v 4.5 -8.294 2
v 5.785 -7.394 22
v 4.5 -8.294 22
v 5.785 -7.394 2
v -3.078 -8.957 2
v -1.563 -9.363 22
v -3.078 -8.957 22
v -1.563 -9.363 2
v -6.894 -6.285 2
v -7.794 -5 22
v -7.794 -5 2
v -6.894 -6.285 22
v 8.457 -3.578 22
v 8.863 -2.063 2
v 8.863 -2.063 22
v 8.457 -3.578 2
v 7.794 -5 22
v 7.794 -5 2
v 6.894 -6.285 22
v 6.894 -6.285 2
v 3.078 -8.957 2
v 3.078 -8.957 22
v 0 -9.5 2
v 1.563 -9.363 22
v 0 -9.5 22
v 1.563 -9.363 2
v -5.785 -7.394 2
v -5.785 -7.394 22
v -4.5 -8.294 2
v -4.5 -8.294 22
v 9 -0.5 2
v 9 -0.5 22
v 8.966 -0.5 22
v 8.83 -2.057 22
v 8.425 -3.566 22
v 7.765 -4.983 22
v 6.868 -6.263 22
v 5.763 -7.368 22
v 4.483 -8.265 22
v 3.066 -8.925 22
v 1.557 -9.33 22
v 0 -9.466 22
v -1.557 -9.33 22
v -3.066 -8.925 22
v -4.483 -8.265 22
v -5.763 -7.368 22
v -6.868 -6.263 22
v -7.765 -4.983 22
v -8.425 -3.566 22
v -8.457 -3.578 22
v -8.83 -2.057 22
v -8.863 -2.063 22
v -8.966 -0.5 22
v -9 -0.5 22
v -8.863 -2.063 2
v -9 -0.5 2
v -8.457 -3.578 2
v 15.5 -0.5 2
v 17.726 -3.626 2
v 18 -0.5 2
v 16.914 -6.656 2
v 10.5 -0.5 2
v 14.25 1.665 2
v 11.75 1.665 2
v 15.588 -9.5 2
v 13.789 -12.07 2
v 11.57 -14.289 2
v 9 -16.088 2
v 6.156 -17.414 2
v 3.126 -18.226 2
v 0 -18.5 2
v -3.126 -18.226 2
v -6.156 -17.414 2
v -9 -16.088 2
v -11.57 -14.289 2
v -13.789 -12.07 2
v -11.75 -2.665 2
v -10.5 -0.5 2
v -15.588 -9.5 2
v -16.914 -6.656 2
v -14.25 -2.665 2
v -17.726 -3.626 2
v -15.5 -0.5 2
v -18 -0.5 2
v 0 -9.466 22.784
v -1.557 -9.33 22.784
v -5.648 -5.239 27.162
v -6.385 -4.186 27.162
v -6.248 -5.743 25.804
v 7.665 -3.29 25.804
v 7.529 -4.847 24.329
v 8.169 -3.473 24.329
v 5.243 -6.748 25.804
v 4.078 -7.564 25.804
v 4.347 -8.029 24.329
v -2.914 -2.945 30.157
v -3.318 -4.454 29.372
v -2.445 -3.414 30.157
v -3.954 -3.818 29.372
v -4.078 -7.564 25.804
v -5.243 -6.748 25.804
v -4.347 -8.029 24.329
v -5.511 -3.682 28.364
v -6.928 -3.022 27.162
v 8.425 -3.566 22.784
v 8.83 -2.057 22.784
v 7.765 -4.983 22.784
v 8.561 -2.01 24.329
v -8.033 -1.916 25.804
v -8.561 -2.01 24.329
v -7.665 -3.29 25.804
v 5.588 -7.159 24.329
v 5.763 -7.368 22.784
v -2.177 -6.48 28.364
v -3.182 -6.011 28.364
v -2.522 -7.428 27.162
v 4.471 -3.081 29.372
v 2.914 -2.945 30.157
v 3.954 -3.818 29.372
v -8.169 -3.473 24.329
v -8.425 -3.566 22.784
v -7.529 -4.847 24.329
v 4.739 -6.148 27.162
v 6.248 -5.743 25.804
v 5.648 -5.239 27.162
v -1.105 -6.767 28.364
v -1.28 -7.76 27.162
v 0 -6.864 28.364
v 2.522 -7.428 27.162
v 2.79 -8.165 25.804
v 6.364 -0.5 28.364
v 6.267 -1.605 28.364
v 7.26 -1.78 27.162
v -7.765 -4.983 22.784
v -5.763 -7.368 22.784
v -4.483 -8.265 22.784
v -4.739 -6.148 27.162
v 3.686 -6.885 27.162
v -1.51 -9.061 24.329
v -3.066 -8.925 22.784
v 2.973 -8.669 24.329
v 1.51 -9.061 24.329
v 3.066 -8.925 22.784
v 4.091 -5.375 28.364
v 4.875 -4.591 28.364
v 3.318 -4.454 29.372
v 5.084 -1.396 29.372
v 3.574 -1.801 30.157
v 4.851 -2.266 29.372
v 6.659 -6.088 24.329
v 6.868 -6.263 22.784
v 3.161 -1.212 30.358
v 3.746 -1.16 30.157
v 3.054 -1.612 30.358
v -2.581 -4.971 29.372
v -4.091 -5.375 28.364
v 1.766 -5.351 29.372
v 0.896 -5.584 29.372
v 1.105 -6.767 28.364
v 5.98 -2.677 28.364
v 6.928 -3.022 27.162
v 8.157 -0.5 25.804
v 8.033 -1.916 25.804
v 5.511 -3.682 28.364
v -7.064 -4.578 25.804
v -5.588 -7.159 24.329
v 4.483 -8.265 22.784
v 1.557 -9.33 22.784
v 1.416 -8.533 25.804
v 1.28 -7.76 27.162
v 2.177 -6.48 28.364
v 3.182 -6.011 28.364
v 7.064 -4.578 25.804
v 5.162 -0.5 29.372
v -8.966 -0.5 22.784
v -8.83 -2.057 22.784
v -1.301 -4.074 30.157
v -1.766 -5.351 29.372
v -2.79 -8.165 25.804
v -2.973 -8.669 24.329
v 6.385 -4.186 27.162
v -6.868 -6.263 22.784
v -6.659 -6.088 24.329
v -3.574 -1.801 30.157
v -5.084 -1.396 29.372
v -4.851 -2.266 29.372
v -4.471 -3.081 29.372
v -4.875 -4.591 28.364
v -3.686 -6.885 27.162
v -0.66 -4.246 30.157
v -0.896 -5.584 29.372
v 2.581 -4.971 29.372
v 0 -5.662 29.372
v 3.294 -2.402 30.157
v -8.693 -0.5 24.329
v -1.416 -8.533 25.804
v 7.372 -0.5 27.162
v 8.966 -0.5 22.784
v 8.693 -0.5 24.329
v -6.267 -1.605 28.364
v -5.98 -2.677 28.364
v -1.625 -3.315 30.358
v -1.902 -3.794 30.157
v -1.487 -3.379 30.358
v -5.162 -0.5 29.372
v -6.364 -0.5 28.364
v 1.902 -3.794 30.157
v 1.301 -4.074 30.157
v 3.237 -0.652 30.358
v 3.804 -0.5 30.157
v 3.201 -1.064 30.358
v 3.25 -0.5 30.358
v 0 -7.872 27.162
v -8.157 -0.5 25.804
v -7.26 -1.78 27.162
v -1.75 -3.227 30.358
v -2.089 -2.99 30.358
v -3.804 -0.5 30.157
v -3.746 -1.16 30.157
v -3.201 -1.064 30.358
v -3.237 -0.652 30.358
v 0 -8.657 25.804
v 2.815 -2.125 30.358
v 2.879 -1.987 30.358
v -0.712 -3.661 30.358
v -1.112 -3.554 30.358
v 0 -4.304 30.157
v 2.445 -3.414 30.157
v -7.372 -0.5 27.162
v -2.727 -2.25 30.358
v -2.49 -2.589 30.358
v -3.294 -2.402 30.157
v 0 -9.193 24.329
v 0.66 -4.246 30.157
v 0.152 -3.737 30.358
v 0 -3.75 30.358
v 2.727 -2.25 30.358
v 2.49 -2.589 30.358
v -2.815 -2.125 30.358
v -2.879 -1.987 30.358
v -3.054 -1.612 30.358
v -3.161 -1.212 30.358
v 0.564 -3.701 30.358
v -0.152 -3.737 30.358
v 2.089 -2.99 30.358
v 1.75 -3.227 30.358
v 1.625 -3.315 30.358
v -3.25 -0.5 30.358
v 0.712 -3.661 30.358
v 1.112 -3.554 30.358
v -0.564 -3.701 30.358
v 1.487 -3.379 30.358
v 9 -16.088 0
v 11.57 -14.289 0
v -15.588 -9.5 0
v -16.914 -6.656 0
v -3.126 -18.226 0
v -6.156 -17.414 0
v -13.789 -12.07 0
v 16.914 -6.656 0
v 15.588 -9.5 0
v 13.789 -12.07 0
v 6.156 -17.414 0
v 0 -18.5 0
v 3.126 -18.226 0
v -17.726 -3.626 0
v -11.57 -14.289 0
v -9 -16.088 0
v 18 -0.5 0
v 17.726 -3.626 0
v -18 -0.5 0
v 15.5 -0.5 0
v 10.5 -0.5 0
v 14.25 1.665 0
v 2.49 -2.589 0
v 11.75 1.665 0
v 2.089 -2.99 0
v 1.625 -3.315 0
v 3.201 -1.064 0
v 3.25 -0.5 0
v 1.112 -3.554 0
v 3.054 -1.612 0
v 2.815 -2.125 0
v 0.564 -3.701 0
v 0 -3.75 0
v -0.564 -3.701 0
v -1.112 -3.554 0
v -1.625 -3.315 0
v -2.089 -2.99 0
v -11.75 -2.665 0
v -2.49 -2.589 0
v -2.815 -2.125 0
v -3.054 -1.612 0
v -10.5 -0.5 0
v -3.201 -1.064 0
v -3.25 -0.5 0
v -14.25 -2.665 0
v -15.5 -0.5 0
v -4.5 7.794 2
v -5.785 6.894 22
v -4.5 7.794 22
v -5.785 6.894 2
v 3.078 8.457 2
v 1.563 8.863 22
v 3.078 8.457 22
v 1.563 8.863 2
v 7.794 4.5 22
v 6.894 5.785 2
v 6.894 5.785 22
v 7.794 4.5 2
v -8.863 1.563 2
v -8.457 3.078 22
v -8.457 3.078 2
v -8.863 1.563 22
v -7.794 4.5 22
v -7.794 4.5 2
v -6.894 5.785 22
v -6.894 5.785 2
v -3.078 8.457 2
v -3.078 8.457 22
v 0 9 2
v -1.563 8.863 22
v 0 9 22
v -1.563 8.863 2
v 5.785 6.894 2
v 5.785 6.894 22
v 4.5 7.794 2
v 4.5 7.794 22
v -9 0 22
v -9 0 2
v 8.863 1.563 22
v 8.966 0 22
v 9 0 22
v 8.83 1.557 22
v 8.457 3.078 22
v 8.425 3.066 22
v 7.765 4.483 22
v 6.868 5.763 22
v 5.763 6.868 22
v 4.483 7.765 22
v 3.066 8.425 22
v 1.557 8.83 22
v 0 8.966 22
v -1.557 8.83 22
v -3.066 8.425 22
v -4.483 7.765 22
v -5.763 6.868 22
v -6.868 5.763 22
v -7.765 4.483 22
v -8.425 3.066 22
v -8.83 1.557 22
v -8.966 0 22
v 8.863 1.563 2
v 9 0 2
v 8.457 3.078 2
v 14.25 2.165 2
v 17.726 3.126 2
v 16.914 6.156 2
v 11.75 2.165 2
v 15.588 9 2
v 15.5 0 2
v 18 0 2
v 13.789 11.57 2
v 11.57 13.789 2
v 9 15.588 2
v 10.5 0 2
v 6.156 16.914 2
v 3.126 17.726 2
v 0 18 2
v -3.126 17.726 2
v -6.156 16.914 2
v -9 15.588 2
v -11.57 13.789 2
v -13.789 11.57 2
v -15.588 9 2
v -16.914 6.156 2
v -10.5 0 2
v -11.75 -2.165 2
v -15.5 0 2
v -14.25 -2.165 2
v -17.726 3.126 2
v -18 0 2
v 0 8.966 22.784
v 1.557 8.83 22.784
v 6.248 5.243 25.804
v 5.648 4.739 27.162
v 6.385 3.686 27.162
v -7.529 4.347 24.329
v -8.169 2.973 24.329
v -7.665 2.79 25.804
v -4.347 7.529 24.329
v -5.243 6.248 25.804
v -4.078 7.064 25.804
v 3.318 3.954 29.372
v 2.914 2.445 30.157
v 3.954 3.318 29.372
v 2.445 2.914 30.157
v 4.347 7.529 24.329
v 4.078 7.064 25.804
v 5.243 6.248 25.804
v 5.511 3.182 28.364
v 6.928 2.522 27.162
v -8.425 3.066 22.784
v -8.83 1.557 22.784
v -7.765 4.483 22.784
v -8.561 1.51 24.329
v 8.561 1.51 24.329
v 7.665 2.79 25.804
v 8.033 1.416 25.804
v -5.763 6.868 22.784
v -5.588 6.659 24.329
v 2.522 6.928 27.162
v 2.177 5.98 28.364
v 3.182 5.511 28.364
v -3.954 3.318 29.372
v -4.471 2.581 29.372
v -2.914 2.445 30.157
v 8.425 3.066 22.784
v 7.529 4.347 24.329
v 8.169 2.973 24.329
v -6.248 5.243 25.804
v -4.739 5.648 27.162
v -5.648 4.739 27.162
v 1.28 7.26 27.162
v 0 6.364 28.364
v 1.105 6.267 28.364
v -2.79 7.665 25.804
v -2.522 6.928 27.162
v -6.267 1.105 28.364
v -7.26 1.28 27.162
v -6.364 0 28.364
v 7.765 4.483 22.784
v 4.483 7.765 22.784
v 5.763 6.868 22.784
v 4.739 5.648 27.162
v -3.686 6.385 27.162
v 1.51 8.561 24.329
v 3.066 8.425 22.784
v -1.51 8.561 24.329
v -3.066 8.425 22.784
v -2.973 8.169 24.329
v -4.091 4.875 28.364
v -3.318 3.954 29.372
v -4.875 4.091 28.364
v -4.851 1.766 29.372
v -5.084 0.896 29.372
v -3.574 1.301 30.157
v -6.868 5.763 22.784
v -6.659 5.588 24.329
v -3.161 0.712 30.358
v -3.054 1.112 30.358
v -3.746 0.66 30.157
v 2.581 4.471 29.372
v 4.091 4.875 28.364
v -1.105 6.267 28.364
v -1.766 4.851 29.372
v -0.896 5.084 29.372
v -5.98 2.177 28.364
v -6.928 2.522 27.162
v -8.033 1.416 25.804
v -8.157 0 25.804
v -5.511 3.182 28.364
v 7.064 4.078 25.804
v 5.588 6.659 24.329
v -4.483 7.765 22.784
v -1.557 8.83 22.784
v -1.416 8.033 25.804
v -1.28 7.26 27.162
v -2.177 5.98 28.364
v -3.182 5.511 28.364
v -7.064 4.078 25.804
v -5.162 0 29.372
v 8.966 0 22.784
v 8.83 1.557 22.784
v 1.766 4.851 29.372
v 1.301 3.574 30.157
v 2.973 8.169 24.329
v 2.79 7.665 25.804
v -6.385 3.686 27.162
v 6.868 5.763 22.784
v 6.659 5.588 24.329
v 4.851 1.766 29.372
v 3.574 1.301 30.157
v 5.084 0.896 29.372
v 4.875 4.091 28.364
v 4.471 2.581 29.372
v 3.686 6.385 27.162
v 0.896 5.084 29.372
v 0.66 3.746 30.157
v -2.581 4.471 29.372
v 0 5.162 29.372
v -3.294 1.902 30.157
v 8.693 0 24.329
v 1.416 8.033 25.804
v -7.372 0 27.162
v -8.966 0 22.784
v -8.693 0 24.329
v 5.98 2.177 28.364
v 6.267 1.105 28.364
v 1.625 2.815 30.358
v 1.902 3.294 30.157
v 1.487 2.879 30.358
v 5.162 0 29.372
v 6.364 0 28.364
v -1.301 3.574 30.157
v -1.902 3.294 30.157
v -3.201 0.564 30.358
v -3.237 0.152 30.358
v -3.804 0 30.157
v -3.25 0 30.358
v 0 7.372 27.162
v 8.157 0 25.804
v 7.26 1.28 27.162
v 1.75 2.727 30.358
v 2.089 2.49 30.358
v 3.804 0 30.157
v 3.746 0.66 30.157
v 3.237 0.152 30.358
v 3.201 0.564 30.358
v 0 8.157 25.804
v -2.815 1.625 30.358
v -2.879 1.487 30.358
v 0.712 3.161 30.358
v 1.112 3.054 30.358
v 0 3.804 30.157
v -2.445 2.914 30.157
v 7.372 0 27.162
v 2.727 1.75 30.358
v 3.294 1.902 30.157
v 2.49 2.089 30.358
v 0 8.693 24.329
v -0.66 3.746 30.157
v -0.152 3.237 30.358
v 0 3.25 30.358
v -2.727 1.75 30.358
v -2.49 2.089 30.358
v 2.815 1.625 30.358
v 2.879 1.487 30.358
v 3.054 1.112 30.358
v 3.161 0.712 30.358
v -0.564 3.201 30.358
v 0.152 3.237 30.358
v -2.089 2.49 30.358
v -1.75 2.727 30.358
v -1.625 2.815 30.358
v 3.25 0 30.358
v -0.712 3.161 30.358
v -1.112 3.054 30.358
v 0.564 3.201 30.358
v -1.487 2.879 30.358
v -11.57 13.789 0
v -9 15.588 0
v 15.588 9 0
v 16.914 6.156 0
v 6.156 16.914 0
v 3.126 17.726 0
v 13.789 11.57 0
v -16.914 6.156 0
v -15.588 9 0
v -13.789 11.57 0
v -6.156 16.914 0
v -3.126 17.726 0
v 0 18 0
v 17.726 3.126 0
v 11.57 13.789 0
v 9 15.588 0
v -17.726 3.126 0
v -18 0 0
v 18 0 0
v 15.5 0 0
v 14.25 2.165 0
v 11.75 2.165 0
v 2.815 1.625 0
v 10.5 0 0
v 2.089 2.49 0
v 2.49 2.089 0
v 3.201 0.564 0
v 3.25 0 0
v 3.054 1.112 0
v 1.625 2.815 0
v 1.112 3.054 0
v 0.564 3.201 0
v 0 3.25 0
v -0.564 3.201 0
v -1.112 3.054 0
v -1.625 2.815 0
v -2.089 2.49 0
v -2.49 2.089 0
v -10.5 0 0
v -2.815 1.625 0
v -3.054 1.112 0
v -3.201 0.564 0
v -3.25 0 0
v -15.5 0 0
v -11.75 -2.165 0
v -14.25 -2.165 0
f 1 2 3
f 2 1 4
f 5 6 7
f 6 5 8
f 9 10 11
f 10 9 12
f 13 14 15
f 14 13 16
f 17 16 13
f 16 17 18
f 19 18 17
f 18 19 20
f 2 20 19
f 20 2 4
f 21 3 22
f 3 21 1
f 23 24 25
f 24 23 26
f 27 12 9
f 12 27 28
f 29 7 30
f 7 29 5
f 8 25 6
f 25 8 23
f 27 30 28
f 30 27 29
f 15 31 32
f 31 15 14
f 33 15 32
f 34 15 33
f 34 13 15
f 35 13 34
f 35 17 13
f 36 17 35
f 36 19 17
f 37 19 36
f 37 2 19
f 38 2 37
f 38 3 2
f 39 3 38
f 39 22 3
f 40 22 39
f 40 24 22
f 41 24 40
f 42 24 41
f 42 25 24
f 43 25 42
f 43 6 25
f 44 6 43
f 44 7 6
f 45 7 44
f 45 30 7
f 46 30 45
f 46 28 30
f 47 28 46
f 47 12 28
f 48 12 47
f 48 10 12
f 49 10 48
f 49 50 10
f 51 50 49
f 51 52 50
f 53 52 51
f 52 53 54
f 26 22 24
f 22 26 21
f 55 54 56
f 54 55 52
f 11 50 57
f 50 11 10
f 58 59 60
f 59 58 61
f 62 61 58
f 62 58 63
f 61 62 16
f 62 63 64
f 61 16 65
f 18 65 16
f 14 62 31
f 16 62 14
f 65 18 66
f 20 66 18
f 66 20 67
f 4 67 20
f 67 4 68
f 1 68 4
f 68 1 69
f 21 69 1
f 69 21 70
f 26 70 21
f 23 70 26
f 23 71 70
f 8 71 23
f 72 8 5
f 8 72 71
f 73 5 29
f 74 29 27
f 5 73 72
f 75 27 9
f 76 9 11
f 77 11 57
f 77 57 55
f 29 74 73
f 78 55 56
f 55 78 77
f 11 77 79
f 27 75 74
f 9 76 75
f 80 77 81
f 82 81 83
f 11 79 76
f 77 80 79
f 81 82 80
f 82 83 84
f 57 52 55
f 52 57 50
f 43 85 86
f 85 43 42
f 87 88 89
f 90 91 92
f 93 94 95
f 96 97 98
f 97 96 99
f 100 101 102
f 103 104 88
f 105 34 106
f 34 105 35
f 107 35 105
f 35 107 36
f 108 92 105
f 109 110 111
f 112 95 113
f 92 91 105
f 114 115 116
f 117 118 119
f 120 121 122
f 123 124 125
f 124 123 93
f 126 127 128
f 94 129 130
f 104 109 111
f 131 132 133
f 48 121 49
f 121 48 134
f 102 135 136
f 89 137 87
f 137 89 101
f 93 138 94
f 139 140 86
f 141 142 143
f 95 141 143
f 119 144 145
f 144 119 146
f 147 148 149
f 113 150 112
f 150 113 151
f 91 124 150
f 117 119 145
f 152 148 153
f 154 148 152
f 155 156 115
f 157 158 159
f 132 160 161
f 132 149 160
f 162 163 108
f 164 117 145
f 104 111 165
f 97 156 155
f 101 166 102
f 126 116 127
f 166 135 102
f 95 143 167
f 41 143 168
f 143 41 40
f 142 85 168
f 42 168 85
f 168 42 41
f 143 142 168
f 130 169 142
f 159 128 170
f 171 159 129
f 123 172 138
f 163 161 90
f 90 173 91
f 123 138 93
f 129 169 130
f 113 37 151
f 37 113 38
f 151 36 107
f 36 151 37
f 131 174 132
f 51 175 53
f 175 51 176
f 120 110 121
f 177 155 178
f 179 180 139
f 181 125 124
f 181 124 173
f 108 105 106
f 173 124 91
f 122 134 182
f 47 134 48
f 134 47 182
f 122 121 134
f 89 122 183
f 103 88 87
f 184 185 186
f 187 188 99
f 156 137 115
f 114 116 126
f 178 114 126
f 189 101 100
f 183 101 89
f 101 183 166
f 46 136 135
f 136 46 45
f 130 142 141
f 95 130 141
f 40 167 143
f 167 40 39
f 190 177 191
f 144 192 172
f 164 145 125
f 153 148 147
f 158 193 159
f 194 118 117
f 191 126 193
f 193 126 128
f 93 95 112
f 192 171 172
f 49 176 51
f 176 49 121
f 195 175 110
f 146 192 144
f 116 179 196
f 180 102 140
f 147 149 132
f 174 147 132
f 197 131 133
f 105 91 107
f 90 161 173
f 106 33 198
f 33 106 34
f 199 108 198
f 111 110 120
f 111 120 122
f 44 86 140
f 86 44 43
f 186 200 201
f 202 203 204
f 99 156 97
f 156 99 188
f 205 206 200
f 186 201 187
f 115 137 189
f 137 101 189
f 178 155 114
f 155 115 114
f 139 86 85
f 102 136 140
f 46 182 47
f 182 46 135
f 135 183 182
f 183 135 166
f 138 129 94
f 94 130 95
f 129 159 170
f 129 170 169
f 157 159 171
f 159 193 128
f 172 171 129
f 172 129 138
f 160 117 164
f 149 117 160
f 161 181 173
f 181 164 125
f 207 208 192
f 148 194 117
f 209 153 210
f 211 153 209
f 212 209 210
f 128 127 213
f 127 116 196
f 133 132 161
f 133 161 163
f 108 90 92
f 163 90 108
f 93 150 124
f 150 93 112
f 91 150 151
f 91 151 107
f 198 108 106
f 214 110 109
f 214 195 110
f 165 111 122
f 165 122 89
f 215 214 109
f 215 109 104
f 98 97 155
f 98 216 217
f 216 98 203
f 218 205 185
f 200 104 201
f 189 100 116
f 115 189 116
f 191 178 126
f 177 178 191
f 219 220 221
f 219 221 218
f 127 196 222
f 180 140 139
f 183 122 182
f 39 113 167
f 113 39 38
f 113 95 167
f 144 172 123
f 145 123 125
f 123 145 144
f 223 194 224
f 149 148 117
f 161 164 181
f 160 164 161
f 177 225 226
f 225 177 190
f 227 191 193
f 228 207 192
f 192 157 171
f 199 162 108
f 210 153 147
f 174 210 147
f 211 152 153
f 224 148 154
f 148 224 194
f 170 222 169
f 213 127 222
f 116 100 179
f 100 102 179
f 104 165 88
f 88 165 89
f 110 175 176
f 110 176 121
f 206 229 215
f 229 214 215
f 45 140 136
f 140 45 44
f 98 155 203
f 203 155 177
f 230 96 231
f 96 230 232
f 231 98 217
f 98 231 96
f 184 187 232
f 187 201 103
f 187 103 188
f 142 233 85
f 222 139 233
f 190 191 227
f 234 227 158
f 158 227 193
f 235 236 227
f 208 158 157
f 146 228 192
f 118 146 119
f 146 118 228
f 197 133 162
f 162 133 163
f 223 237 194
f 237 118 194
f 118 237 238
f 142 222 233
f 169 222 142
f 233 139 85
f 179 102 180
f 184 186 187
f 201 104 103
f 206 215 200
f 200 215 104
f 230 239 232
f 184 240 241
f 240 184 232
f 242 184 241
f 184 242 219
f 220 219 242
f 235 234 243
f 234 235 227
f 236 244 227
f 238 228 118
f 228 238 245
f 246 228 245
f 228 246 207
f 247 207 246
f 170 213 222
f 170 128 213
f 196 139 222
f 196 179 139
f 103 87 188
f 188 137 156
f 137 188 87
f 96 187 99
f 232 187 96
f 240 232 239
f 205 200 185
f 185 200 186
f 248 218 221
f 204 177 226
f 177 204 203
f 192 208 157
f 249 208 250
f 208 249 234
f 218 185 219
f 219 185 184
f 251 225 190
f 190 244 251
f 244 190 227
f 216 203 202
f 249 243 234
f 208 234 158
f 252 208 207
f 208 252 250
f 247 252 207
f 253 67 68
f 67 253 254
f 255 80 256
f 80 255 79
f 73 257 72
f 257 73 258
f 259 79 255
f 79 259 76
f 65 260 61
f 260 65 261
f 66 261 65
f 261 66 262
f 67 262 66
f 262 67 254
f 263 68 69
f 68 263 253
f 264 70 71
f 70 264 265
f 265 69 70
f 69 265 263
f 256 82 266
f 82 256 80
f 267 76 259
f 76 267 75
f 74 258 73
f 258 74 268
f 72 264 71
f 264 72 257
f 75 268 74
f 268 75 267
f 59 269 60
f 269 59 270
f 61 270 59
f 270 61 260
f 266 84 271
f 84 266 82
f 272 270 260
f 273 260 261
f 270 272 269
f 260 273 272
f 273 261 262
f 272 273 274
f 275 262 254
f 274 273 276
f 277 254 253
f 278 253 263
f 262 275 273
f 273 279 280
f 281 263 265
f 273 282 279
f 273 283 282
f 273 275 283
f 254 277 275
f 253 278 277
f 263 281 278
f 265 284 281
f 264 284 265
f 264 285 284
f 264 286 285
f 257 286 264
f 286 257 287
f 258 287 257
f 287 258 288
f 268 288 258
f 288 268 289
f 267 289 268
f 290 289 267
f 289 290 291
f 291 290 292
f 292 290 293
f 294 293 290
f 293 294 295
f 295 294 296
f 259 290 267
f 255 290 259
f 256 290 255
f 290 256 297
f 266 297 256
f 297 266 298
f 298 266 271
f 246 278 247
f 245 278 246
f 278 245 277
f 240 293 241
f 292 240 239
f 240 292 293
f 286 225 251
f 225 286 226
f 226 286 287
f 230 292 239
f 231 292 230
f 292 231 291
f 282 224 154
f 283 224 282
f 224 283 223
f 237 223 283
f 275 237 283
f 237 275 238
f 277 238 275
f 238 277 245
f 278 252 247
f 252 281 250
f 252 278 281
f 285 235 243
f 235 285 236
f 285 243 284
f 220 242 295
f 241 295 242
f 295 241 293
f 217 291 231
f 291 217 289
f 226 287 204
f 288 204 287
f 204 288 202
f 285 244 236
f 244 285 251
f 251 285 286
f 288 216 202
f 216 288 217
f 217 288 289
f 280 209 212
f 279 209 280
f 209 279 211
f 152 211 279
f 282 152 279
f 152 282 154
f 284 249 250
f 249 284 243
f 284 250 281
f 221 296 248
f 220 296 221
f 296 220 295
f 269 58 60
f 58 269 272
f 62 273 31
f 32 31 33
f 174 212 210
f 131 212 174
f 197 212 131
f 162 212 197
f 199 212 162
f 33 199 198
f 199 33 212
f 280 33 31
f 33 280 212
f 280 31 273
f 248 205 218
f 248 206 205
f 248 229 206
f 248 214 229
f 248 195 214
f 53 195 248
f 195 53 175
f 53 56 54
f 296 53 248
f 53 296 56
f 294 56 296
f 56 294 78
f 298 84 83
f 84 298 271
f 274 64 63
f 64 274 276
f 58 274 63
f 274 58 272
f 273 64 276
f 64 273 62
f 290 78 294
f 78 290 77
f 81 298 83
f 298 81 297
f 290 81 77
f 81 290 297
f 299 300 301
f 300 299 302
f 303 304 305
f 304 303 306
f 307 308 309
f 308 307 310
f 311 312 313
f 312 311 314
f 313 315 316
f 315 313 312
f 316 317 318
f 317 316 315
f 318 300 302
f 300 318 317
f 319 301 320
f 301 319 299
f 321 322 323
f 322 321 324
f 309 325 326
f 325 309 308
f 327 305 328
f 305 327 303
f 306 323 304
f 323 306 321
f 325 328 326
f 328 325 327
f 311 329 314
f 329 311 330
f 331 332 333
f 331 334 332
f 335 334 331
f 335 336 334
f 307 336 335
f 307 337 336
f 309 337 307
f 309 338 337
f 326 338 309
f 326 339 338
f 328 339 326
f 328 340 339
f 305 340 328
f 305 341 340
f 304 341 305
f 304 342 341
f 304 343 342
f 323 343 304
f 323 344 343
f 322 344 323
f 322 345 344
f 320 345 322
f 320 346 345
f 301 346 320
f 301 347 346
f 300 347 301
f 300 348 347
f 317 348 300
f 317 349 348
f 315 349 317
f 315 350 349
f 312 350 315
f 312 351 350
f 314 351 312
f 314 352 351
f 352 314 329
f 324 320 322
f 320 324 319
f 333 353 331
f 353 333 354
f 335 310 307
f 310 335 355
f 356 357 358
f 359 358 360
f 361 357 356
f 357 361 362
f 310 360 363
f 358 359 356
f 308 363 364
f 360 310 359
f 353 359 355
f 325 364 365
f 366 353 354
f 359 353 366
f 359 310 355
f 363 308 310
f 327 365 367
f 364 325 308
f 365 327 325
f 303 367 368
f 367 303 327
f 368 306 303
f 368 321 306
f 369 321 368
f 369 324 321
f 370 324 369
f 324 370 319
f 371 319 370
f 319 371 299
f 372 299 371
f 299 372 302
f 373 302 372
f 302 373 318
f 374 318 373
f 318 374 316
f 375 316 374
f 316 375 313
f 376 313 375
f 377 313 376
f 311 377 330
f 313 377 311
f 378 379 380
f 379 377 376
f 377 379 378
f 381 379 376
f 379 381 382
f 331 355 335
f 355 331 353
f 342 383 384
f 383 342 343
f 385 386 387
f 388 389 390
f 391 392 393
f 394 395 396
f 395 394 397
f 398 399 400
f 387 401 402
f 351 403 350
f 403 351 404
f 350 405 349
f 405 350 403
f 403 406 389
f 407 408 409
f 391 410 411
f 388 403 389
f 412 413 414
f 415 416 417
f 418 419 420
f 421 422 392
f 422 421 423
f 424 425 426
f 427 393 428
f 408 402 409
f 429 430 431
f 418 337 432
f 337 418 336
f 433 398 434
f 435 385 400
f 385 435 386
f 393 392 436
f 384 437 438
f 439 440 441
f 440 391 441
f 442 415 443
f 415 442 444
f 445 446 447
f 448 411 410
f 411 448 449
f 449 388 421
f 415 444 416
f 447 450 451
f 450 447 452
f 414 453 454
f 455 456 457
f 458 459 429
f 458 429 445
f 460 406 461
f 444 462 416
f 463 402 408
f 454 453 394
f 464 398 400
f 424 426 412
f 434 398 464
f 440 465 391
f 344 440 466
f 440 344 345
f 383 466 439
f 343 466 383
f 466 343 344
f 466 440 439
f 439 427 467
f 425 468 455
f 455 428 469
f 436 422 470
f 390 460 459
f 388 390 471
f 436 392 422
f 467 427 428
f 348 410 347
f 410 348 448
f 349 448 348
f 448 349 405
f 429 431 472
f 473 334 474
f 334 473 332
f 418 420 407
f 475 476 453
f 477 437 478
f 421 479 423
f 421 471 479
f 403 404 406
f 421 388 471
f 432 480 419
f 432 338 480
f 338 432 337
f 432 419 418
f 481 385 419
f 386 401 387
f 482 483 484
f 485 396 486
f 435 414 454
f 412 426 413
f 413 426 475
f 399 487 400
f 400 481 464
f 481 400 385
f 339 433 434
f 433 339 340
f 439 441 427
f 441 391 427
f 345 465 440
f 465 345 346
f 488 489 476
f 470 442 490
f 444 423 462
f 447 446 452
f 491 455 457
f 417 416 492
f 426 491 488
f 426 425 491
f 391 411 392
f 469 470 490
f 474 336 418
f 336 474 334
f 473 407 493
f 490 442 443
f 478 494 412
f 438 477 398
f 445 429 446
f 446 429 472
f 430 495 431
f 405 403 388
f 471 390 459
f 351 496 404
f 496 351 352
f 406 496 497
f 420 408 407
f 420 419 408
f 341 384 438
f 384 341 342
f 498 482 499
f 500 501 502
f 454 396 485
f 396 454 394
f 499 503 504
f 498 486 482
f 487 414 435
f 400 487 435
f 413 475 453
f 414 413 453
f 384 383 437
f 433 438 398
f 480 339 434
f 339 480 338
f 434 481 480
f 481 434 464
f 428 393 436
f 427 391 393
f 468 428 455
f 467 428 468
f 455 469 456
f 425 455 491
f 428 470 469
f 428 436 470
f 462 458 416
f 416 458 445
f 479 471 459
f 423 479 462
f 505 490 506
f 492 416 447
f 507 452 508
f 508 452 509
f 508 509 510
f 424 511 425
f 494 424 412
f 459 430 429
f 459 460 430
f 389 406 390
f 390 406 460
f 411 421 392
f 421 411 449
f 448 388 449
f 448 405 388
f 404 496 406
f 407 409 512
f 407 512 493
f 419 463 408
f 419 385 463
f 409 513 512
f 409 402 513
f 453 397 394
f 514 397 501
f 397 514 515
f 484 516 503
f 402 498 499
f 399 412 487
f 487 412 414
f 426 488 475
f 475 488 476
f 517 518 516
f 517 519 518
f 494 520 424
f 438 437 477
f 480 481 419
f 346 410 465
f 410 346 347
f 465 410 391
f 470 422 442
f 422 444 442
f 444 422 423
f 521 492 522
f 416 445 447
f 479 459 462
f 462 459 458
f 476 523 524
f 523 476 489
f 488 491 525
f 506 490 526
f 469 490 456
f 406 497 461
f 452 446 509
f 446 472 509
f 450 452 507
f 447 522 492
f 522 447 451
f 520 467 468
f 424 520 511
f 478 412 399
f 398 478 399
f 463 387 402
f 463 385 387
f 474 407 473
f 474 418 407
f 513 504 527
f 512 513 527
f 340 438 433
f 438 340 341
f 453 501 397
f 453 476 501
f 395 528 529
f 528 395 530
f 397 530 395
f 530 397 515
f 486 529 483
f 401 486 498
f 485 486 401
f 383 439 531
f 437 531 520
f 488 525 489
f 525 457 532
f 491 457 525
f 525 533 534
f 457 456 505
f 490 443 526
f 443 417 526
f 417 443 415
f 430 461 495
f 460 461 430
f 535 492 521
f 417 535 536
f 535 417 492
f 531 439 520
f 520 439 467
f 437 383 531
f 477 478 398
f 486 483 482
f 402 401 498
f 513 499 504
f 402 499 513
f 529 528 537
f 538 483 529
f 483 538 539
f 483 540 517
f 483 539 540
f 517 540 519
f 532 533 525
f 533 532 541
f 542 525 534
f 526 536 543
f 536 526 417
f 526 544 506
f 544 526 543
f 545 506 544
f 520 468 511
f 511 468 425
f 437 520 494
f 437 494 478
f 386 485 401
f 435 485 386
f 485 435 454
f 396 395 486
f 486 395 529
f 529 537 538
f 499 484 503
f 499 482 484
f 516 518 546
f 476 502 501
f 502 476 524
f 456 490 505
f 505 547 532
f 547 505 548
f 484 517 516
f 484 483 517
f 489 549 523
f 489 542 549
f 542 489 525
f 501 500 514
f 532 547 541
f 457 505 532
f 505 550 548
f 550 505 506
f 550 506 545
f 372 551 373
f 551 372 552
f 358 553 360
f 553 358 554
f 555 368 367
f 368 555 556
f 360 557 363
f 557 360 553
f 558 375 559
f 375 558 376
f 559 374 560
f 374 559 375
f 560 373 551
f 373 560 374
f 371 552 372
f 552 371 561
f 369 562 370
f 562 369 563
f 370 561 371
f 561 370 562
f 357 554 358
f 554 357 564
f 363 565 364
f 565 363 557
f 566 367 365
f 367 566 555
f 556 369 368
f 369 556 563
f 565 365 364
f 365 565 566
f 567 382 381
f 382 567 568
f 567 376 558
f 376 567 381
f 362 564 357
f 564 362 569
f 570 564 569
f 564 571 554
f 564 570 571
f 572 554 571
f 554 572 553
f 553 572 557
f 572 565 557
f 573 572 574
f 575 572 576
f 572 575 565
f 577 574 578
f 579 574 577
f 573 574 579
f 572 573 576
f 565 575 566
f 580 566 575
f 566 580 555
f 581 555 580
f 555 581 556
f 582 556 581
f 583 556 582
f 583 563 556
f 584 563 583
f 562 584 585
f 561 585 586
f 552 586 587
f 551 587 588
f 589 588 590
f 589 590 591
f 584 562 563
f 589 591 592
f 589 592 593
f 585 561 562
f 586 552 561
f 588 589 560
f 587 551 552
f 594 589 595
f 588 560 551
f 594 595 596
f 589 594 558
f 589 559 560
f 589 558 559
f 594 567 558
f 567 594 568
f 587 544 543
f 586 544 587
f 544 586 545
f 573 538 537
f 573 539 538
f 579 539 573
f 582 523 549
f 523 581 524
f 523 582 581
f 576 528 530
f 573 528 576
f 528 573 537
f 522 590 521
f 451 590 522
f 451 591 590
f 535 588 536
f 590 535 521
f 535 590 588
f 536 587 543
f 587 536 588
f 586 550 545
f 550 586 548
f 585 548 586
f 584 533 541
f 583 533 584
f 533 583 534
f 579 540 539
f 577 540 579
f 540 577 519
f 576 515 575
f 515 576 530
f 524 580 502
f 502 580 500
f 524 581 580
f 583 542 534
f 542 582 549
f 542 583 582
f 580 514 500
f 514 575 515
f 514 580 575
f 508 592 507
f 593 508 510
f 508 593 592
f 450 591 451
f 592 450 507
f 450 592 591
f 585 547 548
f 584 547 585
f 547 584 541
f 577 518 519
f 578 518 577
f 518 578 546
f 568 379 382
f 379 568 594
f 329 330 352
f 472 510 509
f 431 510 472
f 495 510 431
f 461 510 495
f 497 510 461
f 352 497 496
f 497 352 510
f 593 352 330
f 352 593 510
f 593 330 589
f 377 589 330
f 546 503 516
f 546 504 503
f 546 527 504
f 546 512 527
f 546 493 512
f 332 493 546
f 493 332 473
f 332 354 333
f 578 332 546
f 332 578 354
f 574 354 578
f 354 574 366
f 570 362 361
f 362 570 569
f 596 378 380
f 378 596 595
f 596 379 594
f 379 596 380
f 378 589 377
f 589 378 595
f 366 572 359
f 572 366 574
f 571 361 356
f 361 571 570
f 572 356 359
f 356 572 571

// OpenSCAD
gatDiameter = 18;
plaatDiameter = gatDiameter*2;
kabelDiameter = 6.5;
gatHoogte = 20;
plaatHoogte = 2;
nudgeDiameter = 5;
nudgeOffset = plaatDiameter/2 - nudgeDiameter;
fn = 36;

module plaat() {
    difference() {
        union() {
            cylinder(d=plaatDiameter, h=plaatHoogte, $fn=fn);
            translate([0,0,-gatHoogte]) {
                cylinder(d=gatDiameter, h=gatHoogte, $fn=fn);
                sphere(d=gatDiameter, $fn=fn);
            }
        }
        translate([0,0,-gatHoogte*2]) 
            cylinder(d=kabelDiameter, h=plaatHoogte*2+gatHoogte*2+1, $fn=fn);
    }
}

module nudge() {
/*    translate([-nudgeDiameter/2,-nudgeDiameter/2,0])
        cube([nudgeDiameter,nudgeDiameter,plaatHoogte]);*/
    cylinder(d=nudgeDiameter, h=plaatHoogte, $fn=6);
}

module halvePlaat() {
    difference() {
        union() {
            intersection() {
                plaat();
                translate([-plaatDiameter/2,0,-gatHoogte*2]) 
                    cube([plaatDiameter, plaatDiameter, plaatHoogte*2+gatHoogte*2+1]);
            }
            translate([nudgeOffset,0,0])
                nudge();
        }
        translate([-nudgeOffset,0,0])
            nudge();
    }
}

module all() {
    rotate([180,0,0])
    translate([0,0,-plaatHoogte]) {
        translate([0,0.5,0]) 
            halvePlaat();
        rotate([0,0,180])
            halvePlaat();
    }
}

all();
